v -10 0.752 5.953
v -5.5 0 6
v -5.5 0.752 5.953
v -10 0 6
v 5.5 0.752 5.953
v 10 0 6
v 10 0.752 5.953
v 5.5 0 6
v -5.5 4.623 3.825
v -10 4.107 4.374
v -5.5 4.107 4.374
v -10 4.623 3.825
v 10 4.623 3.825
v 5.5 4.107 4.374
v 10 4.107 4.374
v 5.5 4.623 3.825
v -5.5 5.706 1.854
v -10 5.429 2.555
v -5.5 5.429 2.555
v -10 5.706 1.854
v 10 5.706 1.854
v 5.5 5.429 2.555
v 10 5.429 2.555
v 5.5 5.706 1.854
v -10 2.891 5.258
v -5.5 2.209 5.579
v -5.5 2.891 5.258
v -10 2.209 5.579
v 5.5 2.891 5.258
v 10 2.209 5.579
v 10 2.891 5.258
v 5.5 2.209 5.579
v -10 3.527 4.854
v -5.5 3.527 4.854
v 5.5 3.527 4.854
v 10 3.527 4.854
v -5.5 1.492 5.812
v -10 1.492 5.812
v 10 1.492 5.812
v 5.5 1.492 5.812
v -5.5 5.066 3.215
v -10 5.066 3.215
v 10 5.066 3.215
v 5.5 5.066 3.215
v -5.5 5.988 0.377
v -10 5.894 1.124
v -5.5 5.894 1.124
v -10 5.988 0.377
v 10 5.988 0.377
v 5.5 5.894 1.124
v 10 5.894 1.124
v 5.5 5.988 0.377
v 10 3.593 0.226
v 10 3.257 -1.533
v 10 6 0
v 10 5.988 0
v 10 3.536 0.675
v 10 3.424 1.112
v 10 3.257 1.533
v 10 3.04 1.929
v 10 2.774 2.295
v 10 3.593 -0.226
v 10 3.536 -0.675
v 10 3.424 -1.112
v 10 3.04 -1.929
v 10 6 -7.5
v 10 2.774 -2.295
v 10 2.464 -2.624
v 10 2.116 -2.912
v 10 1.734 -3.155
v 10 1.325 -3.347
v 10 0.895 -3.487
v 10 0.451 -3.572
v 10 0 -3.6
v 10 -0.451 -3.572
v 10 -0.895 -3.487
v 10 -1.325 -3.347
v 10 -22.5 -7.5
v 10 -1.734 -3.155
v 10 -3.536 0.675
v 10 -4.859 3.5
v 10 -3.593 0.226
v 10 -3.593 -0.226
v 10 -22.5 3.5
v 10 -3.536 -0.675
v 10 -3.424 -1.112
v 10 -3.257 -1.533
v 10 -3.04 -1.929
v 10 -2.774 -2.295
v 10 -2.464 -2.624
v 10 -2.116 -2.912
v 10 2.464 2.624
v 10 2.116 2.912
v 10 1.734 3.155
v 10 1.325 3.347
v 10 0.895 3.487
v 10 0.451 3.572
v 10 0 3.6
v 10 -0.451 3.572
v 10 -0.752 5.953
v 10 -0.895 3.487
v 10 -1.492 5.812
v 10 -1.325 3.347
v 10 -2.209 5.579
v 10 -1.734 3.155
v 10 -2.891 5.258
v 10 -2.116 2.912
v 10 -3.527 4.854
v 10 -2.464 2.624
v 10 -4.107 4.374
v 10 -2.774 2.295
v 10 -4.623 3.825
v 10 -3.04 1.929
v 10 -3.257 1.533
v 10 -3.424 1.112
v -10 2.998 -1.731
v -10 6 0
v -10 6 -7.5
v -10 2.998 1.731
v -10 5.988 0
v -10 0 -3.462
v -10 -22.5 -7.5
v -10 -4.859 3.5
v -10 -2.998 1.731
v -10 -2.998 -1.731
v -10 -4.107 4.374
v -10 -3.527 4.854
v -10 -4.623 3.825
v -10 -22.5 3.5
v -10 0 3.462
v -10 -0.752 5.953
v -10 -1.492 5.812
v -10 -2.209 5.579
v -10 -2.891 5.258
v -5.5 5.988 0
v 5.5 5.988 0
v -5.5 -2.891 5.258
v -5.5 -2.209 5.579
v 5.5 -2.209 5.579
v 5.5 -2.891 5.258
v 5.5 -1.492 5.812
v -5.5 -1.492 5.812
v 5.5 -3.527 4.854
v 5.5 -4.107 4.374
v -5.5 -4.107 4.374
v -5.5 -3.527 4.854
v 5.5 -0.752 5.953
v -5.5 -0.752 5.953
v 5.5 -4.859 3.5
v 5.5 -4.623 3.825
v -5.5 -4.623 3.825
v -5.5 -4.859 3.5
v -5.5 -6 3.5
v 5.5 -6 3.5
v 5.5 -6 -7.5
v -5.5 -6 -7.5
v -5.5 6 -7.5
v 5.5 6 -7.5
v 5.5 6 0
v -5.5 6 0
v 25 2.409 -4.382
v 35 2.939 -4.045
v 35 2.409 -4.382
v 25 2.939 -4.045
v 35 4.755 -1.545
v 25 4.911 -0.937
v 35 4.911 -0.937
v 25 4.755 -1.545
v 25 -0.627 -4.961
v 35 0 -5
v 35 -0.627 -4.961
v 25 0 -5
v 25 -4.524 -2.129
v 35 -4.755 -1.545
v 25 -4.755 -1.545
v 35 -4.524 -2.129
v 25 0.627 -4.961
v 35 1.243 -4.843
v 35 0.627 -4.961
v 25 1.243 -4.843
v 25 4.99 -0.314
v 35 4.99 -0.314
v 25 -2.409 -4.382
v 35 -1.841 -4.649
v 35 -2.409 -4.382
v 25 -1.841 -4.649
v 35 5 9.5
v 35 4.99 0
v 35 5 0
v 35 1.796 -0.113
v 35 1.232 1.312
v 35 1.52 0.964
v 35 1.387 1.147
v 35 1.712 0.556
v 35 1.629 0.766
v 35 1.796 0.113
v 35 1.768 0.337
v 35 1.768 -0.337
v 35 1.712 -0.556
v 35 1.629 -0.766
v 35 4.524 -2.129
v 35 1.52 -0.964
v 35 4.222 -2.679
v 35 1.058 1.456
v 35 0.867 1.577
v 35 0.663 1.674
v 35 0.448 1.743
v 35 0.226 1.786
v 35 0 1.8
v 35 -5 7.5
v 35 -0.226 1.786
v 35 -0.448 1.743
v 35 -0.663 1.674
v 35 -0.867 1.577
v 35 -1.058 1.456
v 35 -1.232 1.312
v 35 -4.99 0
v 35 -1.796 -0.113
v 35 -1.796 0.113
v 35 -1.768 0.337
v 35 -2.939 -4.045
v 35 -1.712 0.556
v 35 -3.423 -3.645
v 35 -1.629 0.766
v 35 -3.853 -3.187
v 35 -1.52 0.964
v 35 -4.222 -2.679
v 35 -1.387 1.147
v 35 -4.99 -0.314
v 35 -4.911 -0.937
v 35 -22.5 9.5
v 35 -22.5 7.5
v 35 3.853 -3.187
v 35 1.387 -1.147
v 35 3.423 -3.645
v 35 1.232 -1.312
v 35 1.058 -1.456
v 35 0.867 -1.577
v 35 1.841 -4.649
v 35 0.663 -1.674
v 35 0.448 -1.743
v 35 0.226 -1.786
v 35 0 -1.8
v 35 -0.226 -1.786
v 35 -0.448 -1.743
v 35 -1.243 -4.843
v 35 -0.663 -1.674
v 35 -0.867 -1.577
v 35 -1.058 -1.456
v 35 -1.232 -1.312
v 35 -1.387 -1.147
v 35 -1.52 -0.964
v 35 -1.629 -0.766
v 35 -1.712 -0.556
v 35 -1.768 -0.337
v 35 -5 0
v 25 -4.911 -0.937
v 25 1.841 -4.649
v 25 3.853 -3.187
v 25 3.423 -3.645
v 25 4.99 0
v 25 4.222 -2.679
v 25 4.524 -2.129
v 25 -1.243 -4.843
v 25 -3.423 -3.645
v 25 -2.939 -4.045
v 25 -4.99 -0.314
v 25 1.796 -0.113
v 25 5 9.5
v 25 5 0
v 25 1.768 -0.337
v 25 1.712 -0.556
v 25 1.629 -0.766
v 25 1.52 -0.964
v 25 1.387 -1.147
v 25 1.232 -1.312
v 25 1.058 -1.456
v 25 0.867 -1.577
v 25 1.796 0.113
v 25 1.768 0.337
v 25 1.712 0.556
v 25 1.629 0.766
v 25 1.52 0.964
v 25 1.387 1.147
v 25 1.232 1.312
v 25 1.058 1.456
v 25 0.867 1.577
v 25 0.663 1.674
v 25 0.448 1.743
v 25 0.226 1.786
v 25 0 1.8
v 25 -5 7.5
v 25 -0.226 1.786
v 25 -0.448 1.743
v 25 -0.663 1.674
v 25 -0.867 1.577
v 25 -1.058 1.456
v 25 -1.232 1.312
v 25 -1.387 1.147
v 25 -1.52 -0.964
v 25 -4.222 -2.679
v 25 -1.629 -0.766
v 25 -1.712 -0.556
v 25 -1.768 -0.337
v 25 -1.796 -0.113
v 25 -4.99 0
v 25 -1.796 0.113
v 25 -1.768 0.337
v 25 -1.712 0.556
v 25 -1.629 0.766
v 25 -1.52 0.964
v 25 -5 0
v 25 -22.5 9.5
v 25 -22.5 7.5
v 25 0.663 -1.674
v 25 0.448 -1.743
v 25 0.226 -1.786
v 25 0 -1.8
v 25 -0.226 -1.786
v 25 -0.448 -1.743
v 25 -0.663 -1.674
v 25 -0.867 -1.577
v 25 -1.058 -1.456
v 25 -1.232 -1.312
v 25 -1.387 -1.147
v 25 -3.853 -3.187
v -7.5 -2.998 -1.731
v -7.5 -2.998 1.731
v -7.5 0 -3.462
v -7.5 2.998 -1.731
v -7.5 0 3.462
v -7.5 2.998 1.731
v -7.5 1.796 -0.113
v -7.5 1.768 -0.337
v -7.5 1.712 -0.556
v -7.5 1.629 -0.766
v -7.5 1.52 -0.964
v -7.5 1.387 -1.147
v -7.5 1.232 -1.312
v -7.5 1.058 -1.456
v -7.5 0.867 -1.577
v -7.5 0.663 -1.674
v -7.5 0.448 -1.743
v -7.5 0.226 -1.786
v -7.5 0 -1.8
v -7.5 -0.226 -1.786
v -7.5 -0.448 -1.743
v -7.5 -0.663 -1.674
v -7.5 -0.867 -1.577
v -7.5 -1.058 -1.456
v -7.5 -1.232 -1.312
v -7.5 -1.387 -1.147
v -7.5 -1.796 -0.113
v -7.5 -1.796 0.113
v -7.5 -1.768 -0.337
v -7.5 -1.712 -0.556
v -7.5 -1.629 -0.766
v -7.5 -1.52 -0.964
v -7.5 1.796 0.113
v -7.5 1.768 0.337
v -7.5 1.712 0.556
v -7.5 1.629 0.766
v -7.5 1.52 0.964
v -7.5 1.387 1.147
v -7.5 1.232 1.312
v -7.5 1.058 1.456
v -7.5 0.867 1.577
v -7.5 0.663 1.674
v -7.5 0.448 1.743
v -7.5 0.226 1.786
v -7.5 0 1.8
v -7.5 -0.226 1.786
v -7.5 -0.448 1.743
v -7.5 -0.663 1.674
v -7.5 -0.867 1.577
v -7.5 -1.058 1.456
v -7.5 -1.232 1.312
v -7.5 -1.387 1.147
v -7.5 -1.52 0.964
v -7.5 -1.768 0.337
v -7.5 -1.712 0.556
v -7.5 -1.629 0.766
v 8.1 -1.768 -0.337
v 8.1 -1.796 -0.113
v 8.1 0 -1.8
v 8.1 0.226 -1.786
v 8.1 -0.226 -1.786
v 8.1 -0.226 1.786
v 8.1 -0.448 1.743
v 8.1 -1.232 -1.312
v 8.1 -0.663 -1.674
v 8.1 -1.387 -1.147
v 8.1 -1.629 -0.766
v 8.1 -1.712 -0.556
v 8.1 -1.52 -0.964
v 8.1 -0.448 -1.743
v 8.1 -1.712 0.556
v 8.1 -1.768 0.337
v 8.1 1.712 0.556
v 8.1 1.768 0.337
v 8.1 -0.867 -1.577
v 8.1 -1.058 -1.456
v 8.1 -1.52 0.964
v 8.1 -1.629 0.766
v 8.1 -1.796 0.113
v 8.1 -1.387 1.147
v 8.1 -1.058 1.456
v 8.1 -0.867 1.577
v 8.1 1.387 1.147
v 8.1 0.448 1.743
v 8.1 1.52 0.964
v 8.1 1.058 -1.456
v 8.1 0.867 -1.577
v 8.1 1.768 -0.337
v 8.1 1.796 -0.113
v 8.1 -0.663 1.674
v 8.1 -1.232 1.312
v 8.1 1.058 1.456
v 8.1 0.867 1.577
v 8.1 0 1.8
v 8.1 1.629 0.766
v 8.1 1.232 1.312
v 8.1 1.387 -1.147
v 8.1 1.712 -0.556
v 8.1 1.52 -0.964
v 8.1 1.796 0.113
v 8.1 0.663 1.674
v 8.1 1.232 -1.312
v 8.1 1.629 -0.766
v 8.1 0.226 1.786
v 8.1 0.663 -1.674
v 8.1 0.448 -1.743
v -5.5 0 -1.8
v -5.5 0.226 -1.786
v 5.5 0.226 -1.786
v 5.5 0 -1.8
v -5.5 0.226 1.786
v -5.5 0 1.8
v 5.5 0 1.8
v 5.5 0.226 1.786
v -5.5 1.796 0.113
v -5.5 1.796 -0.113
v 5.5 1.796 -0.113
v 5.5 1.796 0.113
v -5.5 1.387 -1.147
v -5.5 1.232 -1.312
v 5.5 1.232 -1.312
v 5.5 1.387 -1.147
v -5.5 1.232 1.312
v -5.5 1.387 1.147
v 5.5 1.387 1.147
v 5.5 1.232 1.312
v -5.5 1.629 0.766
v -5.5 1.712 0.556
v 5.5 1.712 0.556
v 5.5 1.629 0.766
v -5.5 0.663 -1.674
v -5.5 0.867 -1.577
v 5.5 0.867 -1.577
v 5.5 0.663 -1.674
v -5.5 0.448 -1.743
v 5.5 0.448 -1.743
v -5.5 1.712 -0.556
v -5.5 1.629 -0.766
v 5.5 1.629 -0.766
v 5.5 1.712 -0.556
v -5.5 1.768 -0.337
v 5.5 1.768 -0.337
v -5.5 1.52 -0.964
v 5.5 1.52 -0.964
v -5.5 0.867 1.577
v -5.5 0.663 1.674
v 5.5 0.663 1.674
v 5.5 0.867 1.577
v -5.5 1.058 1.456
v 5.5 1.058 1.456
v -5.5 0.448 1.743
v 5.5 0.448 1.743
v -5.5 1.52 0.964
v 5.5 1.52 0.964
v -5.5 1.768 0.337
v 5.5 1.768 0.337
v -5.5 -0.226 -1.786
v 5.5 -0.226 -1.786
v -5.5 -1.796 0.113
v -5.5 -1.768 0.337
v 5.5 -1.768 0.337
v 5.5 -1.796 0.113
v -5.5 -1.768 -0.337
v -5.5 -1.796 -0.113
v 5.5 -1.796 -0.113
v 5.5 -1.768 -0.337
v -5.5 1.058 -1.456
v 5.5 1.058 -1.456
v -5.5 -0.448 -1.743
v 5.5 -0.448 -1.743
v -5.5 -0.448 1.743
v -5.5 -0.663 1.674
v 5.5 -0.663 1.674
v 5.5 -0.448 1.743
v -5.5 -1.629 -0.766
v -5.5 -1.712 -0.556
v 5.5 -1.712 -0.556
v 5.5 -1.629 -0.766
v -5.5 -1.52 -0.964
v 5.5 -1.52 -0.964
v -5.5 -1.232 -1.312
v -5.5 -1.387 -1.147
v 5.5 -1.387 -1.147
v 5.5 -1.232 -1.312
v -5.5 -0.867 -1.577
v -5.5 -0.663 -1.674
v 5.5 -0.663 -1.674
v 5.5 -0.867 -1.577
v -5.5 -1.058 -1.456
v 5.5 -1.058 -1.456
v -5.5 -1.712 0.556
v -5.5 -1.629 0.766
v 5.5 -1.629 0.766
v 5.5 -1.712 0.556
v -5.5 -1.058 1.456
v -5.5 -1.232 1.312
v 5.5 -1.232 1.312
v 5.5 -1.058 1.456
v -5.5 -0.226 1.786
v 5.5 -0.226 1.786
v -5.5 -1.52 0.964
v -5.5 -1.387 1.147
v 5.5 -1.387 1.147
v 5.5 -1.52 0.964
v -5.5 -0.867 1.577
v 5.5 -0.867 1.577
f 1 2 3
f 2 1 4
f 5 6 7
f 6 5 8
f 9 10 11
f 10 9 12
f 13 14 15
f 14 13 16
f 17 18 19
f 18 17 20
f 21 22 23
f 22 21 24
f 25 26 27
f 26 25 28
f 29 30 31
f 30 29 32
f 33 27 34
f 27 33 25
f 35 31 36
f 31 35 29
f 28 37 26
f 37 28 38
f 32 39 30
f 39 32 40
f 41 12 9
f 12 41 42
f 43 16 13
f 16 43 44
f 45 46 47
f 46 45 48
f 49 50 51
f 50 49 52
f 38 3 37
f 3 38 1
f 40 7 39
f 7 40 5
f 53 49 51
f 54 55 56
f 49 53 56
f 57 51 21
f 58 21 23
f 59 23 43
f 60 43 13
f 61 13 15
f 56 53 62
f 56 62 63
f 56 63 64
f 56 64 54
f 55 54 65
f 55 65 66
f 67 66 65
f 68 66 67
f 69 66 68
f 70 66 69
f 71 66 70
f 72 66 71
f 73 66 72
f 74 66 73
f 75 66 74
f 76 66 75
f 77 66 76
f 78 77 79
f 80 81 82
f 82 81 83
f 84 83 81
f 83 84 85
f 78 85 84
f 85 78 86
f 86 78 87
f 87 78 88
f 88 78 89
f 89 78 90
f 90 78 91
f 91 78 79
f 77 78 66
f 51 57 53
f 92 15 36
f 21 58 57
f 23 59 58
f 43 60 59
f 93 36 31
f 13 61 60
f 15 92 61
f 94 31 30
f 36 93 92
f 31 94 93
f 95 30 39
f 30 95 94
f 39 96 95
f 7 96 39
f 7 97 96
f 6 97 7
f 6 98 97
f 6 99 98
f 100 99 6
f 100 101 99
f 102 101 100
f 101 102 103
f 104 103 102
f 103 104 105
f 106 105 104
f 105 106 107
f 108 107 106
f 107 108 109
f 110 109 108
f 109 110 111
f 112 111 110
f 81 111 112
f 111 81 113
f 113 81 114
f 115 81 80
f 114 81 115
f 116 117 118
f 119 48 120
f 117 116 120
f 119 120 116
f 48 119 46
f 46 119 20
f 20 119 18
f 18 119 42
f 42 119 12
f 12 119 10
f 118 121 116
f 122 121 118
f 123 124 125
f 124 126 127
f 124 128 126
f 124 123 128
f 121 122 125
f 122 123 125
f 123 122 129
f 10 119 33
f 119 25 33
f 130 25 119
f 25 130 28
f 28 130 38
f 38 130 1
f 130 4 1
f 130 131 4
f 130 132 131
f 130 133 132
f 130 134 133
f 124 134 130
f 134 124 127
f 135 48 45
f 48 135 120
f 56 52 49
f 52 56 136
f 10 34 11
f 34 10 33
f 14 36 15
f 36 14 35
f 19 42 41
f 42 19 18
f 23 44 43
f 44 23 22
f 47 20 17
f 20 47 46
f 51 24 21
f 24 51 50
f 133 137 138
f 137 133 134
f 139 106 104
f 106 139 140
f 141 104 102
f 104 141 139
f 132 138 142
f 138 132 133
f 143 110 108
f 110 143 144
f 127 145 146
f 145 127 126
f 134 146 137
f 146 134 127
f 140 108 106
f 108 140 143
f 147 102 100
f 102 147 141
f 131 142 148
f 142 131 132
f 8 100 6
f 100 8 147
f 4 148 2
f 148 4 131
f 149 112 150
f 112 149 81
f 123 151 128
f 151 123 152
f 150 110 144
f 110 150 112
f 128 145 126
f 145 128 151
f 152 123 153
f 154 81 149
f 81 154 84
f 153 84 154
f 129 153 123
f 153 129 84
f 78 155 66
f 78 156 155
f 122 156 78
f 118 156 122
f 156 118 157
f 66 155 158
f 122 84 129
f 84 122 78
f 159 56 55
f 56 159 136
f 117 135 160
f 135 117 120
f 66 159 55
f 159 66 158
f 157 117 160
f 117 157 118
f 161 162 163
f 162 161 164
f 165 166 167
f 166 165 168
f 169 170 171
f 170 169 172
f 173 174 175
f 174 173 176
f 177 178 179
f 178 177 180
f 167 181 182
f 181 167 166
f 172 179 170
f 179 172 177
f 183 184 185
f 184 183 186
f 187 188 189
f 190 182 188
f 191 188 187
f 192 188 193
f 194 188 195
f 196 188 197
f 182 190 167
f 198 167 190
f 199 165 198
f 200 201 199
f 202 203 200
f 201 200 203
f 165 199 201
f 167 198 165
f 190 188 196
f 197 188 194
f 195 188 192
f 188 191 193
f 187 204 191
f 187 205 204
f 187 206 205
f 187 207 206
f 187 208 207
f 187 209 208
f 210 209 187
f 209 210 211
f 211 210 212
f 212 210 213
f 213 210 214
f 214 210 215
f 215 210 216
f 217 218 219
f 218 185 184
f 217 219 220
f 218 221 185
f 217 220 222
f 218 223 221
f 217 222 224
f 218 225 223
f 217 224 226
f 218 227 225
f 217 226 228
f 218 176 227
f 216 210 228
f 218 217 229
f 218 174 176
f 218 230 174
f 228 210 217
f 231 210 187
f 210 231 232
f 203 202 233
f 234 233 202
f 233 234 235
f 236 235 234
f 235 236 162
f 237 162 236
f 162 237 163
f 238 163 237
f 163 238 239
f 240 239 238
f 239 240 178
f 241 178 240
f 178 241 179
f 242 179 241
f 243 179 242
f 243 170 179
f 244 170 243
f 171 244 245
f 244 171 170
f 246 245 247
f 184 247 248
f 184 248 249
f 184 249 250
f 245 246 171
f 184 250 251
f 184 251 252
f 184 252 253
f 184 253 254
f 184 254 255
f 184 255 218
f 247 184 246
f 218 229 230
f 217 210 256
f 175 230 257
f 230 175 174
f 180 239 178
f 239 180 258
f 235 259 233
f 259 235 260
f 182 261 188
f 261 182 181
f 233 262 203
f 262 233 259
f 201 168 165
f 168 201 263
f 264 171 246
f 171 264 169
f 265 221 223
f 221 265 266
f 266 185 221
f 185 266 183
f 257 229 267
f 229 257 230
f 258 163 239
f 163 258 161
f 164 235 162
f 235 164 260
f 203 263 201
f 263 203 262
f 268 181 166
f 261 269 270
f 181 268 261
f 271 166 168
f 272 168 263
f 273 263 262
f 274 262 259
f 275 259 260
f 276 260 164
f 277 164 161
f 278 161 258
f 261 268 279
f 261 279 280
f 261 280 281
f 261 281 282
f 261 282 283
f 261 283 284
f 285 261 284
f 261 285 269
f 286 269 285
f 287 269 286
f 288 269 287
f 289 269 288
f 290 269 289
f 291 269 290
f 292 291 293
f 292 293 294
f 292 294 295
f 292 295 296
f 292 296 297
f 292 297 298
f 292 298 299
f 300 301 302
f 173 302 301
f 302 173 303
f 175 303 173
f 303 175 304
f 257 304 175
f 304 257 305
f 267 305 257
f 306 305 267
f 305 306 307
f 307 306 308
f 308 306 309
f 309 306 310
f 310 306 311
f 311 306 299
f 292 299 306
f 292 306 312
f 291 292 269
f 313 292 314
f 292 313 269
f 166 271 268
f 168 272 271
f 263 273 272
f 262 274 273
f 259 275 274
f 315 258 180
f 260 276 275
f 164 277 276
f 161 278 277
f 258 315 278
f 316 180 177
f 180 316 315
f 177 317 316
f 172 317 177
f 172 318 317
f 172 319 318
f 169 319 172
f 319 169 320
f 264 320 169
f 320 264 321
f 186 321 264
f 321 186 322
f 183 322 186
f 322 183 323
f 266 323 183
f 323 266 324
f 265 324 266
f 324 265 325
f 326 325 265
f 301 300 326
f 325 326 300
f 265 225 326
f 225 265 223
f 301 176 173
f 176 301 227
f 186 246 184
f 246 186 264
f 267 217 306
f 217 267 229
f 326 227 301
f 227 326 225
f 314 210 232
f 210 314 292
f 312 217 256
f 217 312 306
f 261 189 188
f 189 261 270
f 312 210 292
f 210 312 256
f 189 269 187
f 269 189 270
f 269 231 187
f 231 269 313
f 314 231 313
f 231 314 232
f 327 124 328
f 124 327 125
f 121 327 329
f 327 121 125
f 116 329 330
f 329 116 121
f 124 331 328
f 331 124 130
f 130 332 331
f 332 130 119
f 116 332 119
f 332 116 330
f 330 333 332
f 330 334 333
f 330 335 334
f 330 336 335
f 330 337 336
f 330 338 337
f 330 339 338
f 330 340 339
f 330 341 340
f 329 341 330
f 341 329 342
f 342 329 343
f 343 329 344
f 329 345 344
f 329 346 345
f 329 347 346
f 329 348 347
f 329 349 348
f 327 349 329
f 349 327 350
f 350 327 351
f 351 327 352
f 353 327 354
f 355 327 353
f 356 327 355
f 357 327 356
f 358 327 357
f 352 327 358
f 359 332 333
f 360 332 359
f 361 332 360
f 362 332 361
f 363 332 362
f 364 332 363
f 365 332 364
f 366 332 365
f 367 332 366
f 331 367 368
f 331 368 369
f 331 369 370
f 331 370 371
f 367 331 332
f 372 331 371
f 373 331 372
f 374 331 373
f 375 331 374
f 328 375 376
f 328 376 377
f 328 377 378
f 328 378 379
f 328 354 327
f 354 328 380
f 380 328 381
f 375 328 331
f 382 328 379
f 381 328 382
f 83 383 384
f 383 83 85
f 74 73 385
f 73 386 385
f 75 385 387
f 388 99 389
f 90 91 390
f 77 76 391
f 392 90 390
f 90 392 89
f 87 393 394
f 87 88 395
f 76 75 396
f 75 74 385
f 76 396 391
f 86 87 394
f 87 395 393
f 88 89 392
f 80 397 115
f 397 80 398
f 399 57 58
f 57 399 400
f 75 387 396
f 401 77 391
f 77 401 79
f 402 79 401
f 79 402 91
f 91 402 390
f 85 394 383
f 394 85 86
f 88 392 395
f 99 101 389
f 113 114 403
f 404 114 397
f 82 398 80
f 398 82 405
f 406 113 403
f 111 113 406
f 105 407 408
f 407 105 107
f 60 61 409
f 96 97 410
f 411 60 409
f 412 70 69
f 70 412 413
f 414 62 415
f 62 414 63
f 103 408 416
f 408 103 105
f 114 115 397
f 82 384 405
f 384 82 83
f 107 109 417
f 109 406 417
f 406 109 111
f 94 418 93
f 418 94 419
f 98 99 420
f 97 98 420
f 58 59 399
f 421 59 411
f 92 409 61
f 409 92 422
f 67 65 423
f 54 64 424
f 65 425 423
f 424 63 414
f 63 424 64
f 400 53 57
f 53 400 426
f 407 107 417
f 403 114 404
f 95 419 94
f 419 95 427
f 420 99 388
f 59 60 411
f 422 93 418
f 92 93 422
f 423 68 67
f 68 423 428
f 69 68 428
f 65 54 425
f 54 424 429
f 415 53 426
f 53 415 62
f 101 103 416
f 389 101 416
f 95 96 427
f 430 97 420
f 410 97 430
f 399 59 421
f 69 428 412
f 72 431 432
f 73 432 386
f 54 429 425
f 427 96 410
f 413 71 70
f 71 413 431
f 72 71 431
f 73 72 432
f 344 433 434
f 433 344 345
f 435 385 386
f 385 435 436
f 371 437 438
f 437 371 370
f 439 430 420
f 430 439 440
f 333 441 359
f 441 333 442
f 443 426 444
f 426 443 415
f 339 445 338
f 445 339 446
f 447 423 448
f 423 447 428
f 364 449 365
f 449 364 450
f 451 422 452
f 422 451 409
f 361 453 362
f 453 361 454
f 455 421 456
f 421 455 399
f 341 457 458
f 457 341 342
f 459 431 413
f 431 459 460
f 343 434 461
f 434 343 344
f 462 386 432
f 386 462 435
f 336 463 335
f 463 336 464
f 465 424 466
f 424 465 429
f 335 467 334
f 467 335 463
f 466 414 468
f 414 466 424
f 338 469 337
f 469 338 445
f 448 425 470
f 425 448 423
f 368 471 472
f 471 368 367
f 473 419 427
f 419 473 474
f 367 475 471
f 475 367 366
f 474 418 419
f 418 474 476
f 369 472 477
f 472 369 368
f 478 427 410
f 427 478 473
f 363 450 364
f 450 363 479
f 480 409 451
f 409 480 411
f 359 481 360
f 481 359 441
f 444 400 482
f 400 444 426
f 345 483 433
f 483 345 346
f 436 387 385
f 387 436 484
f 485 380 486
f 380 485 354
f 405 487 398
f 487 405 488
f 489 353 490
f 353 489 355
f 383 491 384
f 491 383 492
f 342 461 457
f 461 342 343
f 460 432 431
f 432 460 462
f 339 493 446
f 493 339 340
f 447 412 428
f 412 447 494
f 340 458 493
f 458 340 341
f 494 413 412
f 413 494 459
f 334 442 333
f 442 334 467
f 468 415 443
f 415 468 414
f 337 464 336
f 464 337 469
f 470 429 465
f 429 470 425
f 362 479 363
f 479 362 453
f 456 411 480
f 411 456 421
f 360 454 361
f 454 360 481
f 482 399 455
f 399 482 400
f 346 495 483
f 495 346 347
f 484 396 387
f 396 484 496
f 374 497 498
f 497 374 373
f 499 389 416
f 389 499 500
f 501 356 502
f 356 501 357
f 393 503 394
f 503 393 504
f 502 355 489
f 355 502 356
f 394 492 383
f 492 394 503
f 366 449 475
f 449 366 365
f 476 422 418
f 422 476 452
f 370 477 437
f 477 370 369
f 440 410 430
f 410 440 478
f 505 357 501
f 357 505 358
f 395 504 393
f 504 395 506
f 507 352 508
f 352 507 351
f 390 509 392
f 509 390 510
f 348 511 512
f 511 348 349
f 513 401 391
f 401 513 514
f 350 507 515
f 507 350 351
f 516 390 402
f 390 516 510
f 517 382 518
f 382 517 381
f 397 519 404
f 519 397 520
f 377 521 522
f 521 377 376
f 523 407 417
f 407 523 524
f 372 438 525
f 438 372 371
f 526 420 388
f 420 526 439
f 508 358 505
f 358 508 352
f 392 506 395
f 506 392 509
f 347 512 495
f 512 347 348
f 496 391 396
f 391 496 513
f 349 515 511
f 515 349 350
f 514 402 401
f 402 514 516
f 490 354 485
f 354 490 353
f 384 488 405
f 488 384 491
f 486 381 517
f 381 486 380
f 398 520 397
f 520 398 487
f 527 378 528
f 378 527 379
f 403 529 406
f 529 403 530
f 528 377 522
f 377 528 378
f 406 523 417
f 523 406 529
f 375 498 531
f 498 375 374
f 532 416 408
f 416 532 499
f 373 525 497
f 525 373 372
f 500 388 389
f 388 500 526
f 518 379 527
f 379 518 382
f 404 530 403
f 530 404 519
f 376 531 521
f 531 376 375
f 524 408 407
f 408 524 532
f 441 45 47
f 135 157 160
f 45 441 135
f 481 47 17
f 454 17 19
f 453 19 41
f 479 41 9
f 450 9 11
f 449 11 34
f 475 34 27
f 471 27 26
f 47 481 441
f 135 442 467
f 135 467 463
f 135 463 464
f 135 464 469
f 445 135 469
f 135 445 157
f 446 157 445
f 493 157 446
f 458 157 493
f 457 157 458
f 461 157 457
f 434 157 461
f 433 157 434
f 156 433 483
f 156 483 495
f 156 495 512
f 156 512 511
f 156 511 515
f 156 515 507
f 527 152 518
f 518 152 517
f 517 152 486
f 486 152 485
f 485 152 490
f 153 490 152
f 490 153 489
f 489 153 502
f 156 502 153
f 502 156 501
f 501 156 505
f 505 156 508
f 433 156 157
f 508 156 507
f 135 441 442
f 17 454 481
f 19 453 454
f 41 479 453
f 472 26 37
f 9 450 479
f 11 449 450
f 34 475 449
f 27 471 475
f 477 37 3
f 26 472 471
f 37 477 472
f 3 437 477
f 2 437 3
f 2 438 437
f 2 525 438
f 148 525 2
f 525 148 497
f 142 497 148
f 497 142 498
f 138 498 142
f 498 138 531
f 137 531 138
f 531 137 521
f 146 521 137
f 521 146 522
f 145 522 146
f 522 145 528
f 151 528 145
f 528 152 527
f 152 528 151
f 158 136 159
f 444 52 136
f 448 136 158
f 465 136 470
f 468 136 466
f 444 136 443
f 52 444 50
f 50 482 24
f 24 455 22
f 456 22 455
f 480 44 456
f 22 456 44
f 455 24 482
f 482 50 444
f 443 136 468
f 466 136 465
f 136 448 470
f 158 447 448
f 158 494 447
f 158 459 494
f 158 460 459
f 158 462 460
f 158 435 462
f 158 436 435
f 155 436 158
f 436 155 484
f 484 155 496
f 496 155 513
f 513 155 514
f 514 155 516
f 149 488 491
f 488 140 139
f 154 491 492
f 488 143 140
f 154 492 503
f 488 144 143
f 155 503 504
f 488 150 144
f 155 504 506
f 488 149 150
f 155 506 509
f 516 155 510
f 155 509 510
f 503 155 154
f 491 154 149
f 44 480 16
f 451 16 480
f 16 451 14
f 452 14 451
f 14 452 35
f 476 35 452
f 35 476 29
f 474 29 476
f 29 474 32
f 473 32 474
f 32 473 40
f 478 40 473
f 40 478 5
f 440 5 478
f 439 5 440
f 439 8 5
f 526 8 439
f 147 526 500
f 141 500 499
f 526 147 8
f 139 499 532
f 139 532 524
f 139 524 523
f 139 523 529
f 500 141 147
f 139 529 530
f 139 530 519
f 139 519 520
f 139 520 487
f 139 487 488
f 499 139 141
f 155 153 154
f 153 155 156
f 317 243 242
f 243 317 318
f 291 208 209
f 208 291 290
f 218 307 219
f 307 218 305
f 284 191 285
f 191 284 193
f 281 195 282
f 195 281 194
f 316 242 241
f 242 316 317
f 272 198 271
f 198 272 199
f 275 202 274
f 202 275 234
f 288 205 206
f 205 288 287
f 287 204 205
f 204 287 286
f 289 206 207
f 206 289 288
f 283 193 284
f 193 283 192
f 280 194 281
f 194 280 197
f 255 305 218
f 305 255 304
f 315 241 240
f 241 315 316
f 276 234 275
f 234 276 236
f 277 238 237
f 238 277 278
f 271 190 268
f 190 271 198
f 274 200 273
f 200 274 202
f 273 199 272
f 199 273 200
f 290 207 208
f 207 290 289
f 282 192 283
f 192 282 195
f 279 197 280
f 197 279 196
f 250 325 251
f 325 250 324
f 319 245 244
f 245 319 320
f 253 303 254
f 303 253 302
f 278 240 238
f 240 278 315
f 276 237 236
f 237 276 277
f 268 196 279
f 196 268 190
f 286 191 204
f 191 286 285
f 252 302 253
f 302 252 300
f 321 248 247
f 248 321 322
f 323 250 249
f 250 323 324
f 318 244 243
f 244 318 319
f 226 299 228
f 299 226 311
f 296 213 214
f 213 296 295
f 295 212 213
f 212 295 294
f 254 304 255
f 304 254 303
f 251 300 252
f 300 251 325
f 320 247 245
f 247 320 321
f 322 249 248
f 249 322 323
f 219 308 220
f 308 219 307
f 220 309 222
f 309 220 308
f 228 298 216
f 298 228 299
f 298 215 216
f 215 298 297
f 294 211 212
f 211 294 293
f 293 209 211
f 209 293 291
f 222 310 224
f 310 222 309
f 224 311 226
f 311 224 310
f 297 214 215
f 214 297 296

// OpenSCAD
$fn = 50;


difference() {
	union() {
		translate(v = [-10.0000000000, 0, 0.0000000000]) {
			rotate(a = [0, 90, 0]) {
				cylinder(h = 20, r = 6.0000000000);
			}
		}
		translate(v = [-10.0000000000, -22.5000000000, -7.5000000000]) {
			cube(size = [20, 22.5000000000, 11]);
		}
		translate(v = [-10.0000000000, -21.0000000000, -7.5000000000]) {
			cube(size = [20, 27, 7.5000000000]);
		}
		translate(v = [25.0000000000, 0, 0.0000000000]) {
			rotate(a = [0, 90, 0]) {
				cylinder(h = 10, r = 5.0000000000);
			}
		}
		translate(v = [25.0000000000, -5.0000000000, 0]) {
			cube(size = [10, 10, 7.5000000000]);
		}
		translate(v = [25.0000000000, -22.5000000000, 7.5000000000]) {
			cube(size = [10, 27.5000000000, 2]);
		}
	}
	union() {
		translate(v = [10.0000000000, 0, 0]) {
			rotate(a = [0, 90, 0]) {
				difference() {
					union() {
						translate(v = [0, 0, -20.0000000000]) {
							rotate(a = [0, 0, 0]) {
								difference() {
									union() {
										linear_extrude(height = 2.5000000000) {
											polygon(points = [[3.4620000000, 0.0000000000], [1.7310000000, 2.9981799479], [-1.7310000000, 2.9981799479], [-3.4620000000, 0.0000000000], [-1.7310000000, -2.9981799479], [1.7310000000, -2.9981799479]]);
										}
									}
									union();
								}
							}
						}
						translate(v = [0, 0, -20.0000000000]) {
							rotate(a = [0, 0, 0]) {
								difference() {
									union() {
										linear_extrude(height = 2.5000000000) {
											polygon(points = [[3.4620000000, 0.0000000000], [1.7310000000, 2.9981799479], [-1.7310000000, 2.9981799479], [-3.4620000000, 0.0000000000], [-1.7310000000, -2.9981799479], [1.7310000000, -2.9981799479]]);
										}
									}
									union();
								}
							}
						}
						translate(v = [0, 0, -20.0000000000]) {
							rotate(a = [0, 0, 0]) {
								difference() {
									union() {
										linear_extrude(height = 2.5000000000) {
											polygon(points = [[3.4620000000, 0.0000000000], [1.7310000000, 2.9981799479], [-1.7310000000, 2.9981799479], [-3.4620000000, 0.0000000000], [-1.7310000000, -2.9981799479], [1.7310000000, -2.9981799479]]);
										}
									}
									union();
								}
							}
						}
						translate(v = [0, 0, -20.0000000000]) {
							cylinder(h = 20, r = 1.5000000000);
						}
						translate(v = [0, 0, -1.9000000000]) {
							cylinder(h = 1.9000000000, r1 = 1.8000000000, r2 = 3.6000000000);
						}
						translate(v = [0, 0, -20.0000000000]) {
							cylinder(h = 20, r = 1.8000000000);
						}
						translate(v = [0, 0, -20.0000000000]) {
							cylinder(h = 20, r = 1.5000000000);
						}
					}
					union();
				}
			}
		}
		translate(v = [-5.5000000000, -6.0000000000, -7.5000000000]) {
			cube(size = [11, 15, 15]);
		}
		translate(v = [25.0000000000, 0, 0]) {
			rotate(a = [0, 90, 0]) {
				cylinder(h = 10, r = 1.8000000000);
			}
		}
	}
}
